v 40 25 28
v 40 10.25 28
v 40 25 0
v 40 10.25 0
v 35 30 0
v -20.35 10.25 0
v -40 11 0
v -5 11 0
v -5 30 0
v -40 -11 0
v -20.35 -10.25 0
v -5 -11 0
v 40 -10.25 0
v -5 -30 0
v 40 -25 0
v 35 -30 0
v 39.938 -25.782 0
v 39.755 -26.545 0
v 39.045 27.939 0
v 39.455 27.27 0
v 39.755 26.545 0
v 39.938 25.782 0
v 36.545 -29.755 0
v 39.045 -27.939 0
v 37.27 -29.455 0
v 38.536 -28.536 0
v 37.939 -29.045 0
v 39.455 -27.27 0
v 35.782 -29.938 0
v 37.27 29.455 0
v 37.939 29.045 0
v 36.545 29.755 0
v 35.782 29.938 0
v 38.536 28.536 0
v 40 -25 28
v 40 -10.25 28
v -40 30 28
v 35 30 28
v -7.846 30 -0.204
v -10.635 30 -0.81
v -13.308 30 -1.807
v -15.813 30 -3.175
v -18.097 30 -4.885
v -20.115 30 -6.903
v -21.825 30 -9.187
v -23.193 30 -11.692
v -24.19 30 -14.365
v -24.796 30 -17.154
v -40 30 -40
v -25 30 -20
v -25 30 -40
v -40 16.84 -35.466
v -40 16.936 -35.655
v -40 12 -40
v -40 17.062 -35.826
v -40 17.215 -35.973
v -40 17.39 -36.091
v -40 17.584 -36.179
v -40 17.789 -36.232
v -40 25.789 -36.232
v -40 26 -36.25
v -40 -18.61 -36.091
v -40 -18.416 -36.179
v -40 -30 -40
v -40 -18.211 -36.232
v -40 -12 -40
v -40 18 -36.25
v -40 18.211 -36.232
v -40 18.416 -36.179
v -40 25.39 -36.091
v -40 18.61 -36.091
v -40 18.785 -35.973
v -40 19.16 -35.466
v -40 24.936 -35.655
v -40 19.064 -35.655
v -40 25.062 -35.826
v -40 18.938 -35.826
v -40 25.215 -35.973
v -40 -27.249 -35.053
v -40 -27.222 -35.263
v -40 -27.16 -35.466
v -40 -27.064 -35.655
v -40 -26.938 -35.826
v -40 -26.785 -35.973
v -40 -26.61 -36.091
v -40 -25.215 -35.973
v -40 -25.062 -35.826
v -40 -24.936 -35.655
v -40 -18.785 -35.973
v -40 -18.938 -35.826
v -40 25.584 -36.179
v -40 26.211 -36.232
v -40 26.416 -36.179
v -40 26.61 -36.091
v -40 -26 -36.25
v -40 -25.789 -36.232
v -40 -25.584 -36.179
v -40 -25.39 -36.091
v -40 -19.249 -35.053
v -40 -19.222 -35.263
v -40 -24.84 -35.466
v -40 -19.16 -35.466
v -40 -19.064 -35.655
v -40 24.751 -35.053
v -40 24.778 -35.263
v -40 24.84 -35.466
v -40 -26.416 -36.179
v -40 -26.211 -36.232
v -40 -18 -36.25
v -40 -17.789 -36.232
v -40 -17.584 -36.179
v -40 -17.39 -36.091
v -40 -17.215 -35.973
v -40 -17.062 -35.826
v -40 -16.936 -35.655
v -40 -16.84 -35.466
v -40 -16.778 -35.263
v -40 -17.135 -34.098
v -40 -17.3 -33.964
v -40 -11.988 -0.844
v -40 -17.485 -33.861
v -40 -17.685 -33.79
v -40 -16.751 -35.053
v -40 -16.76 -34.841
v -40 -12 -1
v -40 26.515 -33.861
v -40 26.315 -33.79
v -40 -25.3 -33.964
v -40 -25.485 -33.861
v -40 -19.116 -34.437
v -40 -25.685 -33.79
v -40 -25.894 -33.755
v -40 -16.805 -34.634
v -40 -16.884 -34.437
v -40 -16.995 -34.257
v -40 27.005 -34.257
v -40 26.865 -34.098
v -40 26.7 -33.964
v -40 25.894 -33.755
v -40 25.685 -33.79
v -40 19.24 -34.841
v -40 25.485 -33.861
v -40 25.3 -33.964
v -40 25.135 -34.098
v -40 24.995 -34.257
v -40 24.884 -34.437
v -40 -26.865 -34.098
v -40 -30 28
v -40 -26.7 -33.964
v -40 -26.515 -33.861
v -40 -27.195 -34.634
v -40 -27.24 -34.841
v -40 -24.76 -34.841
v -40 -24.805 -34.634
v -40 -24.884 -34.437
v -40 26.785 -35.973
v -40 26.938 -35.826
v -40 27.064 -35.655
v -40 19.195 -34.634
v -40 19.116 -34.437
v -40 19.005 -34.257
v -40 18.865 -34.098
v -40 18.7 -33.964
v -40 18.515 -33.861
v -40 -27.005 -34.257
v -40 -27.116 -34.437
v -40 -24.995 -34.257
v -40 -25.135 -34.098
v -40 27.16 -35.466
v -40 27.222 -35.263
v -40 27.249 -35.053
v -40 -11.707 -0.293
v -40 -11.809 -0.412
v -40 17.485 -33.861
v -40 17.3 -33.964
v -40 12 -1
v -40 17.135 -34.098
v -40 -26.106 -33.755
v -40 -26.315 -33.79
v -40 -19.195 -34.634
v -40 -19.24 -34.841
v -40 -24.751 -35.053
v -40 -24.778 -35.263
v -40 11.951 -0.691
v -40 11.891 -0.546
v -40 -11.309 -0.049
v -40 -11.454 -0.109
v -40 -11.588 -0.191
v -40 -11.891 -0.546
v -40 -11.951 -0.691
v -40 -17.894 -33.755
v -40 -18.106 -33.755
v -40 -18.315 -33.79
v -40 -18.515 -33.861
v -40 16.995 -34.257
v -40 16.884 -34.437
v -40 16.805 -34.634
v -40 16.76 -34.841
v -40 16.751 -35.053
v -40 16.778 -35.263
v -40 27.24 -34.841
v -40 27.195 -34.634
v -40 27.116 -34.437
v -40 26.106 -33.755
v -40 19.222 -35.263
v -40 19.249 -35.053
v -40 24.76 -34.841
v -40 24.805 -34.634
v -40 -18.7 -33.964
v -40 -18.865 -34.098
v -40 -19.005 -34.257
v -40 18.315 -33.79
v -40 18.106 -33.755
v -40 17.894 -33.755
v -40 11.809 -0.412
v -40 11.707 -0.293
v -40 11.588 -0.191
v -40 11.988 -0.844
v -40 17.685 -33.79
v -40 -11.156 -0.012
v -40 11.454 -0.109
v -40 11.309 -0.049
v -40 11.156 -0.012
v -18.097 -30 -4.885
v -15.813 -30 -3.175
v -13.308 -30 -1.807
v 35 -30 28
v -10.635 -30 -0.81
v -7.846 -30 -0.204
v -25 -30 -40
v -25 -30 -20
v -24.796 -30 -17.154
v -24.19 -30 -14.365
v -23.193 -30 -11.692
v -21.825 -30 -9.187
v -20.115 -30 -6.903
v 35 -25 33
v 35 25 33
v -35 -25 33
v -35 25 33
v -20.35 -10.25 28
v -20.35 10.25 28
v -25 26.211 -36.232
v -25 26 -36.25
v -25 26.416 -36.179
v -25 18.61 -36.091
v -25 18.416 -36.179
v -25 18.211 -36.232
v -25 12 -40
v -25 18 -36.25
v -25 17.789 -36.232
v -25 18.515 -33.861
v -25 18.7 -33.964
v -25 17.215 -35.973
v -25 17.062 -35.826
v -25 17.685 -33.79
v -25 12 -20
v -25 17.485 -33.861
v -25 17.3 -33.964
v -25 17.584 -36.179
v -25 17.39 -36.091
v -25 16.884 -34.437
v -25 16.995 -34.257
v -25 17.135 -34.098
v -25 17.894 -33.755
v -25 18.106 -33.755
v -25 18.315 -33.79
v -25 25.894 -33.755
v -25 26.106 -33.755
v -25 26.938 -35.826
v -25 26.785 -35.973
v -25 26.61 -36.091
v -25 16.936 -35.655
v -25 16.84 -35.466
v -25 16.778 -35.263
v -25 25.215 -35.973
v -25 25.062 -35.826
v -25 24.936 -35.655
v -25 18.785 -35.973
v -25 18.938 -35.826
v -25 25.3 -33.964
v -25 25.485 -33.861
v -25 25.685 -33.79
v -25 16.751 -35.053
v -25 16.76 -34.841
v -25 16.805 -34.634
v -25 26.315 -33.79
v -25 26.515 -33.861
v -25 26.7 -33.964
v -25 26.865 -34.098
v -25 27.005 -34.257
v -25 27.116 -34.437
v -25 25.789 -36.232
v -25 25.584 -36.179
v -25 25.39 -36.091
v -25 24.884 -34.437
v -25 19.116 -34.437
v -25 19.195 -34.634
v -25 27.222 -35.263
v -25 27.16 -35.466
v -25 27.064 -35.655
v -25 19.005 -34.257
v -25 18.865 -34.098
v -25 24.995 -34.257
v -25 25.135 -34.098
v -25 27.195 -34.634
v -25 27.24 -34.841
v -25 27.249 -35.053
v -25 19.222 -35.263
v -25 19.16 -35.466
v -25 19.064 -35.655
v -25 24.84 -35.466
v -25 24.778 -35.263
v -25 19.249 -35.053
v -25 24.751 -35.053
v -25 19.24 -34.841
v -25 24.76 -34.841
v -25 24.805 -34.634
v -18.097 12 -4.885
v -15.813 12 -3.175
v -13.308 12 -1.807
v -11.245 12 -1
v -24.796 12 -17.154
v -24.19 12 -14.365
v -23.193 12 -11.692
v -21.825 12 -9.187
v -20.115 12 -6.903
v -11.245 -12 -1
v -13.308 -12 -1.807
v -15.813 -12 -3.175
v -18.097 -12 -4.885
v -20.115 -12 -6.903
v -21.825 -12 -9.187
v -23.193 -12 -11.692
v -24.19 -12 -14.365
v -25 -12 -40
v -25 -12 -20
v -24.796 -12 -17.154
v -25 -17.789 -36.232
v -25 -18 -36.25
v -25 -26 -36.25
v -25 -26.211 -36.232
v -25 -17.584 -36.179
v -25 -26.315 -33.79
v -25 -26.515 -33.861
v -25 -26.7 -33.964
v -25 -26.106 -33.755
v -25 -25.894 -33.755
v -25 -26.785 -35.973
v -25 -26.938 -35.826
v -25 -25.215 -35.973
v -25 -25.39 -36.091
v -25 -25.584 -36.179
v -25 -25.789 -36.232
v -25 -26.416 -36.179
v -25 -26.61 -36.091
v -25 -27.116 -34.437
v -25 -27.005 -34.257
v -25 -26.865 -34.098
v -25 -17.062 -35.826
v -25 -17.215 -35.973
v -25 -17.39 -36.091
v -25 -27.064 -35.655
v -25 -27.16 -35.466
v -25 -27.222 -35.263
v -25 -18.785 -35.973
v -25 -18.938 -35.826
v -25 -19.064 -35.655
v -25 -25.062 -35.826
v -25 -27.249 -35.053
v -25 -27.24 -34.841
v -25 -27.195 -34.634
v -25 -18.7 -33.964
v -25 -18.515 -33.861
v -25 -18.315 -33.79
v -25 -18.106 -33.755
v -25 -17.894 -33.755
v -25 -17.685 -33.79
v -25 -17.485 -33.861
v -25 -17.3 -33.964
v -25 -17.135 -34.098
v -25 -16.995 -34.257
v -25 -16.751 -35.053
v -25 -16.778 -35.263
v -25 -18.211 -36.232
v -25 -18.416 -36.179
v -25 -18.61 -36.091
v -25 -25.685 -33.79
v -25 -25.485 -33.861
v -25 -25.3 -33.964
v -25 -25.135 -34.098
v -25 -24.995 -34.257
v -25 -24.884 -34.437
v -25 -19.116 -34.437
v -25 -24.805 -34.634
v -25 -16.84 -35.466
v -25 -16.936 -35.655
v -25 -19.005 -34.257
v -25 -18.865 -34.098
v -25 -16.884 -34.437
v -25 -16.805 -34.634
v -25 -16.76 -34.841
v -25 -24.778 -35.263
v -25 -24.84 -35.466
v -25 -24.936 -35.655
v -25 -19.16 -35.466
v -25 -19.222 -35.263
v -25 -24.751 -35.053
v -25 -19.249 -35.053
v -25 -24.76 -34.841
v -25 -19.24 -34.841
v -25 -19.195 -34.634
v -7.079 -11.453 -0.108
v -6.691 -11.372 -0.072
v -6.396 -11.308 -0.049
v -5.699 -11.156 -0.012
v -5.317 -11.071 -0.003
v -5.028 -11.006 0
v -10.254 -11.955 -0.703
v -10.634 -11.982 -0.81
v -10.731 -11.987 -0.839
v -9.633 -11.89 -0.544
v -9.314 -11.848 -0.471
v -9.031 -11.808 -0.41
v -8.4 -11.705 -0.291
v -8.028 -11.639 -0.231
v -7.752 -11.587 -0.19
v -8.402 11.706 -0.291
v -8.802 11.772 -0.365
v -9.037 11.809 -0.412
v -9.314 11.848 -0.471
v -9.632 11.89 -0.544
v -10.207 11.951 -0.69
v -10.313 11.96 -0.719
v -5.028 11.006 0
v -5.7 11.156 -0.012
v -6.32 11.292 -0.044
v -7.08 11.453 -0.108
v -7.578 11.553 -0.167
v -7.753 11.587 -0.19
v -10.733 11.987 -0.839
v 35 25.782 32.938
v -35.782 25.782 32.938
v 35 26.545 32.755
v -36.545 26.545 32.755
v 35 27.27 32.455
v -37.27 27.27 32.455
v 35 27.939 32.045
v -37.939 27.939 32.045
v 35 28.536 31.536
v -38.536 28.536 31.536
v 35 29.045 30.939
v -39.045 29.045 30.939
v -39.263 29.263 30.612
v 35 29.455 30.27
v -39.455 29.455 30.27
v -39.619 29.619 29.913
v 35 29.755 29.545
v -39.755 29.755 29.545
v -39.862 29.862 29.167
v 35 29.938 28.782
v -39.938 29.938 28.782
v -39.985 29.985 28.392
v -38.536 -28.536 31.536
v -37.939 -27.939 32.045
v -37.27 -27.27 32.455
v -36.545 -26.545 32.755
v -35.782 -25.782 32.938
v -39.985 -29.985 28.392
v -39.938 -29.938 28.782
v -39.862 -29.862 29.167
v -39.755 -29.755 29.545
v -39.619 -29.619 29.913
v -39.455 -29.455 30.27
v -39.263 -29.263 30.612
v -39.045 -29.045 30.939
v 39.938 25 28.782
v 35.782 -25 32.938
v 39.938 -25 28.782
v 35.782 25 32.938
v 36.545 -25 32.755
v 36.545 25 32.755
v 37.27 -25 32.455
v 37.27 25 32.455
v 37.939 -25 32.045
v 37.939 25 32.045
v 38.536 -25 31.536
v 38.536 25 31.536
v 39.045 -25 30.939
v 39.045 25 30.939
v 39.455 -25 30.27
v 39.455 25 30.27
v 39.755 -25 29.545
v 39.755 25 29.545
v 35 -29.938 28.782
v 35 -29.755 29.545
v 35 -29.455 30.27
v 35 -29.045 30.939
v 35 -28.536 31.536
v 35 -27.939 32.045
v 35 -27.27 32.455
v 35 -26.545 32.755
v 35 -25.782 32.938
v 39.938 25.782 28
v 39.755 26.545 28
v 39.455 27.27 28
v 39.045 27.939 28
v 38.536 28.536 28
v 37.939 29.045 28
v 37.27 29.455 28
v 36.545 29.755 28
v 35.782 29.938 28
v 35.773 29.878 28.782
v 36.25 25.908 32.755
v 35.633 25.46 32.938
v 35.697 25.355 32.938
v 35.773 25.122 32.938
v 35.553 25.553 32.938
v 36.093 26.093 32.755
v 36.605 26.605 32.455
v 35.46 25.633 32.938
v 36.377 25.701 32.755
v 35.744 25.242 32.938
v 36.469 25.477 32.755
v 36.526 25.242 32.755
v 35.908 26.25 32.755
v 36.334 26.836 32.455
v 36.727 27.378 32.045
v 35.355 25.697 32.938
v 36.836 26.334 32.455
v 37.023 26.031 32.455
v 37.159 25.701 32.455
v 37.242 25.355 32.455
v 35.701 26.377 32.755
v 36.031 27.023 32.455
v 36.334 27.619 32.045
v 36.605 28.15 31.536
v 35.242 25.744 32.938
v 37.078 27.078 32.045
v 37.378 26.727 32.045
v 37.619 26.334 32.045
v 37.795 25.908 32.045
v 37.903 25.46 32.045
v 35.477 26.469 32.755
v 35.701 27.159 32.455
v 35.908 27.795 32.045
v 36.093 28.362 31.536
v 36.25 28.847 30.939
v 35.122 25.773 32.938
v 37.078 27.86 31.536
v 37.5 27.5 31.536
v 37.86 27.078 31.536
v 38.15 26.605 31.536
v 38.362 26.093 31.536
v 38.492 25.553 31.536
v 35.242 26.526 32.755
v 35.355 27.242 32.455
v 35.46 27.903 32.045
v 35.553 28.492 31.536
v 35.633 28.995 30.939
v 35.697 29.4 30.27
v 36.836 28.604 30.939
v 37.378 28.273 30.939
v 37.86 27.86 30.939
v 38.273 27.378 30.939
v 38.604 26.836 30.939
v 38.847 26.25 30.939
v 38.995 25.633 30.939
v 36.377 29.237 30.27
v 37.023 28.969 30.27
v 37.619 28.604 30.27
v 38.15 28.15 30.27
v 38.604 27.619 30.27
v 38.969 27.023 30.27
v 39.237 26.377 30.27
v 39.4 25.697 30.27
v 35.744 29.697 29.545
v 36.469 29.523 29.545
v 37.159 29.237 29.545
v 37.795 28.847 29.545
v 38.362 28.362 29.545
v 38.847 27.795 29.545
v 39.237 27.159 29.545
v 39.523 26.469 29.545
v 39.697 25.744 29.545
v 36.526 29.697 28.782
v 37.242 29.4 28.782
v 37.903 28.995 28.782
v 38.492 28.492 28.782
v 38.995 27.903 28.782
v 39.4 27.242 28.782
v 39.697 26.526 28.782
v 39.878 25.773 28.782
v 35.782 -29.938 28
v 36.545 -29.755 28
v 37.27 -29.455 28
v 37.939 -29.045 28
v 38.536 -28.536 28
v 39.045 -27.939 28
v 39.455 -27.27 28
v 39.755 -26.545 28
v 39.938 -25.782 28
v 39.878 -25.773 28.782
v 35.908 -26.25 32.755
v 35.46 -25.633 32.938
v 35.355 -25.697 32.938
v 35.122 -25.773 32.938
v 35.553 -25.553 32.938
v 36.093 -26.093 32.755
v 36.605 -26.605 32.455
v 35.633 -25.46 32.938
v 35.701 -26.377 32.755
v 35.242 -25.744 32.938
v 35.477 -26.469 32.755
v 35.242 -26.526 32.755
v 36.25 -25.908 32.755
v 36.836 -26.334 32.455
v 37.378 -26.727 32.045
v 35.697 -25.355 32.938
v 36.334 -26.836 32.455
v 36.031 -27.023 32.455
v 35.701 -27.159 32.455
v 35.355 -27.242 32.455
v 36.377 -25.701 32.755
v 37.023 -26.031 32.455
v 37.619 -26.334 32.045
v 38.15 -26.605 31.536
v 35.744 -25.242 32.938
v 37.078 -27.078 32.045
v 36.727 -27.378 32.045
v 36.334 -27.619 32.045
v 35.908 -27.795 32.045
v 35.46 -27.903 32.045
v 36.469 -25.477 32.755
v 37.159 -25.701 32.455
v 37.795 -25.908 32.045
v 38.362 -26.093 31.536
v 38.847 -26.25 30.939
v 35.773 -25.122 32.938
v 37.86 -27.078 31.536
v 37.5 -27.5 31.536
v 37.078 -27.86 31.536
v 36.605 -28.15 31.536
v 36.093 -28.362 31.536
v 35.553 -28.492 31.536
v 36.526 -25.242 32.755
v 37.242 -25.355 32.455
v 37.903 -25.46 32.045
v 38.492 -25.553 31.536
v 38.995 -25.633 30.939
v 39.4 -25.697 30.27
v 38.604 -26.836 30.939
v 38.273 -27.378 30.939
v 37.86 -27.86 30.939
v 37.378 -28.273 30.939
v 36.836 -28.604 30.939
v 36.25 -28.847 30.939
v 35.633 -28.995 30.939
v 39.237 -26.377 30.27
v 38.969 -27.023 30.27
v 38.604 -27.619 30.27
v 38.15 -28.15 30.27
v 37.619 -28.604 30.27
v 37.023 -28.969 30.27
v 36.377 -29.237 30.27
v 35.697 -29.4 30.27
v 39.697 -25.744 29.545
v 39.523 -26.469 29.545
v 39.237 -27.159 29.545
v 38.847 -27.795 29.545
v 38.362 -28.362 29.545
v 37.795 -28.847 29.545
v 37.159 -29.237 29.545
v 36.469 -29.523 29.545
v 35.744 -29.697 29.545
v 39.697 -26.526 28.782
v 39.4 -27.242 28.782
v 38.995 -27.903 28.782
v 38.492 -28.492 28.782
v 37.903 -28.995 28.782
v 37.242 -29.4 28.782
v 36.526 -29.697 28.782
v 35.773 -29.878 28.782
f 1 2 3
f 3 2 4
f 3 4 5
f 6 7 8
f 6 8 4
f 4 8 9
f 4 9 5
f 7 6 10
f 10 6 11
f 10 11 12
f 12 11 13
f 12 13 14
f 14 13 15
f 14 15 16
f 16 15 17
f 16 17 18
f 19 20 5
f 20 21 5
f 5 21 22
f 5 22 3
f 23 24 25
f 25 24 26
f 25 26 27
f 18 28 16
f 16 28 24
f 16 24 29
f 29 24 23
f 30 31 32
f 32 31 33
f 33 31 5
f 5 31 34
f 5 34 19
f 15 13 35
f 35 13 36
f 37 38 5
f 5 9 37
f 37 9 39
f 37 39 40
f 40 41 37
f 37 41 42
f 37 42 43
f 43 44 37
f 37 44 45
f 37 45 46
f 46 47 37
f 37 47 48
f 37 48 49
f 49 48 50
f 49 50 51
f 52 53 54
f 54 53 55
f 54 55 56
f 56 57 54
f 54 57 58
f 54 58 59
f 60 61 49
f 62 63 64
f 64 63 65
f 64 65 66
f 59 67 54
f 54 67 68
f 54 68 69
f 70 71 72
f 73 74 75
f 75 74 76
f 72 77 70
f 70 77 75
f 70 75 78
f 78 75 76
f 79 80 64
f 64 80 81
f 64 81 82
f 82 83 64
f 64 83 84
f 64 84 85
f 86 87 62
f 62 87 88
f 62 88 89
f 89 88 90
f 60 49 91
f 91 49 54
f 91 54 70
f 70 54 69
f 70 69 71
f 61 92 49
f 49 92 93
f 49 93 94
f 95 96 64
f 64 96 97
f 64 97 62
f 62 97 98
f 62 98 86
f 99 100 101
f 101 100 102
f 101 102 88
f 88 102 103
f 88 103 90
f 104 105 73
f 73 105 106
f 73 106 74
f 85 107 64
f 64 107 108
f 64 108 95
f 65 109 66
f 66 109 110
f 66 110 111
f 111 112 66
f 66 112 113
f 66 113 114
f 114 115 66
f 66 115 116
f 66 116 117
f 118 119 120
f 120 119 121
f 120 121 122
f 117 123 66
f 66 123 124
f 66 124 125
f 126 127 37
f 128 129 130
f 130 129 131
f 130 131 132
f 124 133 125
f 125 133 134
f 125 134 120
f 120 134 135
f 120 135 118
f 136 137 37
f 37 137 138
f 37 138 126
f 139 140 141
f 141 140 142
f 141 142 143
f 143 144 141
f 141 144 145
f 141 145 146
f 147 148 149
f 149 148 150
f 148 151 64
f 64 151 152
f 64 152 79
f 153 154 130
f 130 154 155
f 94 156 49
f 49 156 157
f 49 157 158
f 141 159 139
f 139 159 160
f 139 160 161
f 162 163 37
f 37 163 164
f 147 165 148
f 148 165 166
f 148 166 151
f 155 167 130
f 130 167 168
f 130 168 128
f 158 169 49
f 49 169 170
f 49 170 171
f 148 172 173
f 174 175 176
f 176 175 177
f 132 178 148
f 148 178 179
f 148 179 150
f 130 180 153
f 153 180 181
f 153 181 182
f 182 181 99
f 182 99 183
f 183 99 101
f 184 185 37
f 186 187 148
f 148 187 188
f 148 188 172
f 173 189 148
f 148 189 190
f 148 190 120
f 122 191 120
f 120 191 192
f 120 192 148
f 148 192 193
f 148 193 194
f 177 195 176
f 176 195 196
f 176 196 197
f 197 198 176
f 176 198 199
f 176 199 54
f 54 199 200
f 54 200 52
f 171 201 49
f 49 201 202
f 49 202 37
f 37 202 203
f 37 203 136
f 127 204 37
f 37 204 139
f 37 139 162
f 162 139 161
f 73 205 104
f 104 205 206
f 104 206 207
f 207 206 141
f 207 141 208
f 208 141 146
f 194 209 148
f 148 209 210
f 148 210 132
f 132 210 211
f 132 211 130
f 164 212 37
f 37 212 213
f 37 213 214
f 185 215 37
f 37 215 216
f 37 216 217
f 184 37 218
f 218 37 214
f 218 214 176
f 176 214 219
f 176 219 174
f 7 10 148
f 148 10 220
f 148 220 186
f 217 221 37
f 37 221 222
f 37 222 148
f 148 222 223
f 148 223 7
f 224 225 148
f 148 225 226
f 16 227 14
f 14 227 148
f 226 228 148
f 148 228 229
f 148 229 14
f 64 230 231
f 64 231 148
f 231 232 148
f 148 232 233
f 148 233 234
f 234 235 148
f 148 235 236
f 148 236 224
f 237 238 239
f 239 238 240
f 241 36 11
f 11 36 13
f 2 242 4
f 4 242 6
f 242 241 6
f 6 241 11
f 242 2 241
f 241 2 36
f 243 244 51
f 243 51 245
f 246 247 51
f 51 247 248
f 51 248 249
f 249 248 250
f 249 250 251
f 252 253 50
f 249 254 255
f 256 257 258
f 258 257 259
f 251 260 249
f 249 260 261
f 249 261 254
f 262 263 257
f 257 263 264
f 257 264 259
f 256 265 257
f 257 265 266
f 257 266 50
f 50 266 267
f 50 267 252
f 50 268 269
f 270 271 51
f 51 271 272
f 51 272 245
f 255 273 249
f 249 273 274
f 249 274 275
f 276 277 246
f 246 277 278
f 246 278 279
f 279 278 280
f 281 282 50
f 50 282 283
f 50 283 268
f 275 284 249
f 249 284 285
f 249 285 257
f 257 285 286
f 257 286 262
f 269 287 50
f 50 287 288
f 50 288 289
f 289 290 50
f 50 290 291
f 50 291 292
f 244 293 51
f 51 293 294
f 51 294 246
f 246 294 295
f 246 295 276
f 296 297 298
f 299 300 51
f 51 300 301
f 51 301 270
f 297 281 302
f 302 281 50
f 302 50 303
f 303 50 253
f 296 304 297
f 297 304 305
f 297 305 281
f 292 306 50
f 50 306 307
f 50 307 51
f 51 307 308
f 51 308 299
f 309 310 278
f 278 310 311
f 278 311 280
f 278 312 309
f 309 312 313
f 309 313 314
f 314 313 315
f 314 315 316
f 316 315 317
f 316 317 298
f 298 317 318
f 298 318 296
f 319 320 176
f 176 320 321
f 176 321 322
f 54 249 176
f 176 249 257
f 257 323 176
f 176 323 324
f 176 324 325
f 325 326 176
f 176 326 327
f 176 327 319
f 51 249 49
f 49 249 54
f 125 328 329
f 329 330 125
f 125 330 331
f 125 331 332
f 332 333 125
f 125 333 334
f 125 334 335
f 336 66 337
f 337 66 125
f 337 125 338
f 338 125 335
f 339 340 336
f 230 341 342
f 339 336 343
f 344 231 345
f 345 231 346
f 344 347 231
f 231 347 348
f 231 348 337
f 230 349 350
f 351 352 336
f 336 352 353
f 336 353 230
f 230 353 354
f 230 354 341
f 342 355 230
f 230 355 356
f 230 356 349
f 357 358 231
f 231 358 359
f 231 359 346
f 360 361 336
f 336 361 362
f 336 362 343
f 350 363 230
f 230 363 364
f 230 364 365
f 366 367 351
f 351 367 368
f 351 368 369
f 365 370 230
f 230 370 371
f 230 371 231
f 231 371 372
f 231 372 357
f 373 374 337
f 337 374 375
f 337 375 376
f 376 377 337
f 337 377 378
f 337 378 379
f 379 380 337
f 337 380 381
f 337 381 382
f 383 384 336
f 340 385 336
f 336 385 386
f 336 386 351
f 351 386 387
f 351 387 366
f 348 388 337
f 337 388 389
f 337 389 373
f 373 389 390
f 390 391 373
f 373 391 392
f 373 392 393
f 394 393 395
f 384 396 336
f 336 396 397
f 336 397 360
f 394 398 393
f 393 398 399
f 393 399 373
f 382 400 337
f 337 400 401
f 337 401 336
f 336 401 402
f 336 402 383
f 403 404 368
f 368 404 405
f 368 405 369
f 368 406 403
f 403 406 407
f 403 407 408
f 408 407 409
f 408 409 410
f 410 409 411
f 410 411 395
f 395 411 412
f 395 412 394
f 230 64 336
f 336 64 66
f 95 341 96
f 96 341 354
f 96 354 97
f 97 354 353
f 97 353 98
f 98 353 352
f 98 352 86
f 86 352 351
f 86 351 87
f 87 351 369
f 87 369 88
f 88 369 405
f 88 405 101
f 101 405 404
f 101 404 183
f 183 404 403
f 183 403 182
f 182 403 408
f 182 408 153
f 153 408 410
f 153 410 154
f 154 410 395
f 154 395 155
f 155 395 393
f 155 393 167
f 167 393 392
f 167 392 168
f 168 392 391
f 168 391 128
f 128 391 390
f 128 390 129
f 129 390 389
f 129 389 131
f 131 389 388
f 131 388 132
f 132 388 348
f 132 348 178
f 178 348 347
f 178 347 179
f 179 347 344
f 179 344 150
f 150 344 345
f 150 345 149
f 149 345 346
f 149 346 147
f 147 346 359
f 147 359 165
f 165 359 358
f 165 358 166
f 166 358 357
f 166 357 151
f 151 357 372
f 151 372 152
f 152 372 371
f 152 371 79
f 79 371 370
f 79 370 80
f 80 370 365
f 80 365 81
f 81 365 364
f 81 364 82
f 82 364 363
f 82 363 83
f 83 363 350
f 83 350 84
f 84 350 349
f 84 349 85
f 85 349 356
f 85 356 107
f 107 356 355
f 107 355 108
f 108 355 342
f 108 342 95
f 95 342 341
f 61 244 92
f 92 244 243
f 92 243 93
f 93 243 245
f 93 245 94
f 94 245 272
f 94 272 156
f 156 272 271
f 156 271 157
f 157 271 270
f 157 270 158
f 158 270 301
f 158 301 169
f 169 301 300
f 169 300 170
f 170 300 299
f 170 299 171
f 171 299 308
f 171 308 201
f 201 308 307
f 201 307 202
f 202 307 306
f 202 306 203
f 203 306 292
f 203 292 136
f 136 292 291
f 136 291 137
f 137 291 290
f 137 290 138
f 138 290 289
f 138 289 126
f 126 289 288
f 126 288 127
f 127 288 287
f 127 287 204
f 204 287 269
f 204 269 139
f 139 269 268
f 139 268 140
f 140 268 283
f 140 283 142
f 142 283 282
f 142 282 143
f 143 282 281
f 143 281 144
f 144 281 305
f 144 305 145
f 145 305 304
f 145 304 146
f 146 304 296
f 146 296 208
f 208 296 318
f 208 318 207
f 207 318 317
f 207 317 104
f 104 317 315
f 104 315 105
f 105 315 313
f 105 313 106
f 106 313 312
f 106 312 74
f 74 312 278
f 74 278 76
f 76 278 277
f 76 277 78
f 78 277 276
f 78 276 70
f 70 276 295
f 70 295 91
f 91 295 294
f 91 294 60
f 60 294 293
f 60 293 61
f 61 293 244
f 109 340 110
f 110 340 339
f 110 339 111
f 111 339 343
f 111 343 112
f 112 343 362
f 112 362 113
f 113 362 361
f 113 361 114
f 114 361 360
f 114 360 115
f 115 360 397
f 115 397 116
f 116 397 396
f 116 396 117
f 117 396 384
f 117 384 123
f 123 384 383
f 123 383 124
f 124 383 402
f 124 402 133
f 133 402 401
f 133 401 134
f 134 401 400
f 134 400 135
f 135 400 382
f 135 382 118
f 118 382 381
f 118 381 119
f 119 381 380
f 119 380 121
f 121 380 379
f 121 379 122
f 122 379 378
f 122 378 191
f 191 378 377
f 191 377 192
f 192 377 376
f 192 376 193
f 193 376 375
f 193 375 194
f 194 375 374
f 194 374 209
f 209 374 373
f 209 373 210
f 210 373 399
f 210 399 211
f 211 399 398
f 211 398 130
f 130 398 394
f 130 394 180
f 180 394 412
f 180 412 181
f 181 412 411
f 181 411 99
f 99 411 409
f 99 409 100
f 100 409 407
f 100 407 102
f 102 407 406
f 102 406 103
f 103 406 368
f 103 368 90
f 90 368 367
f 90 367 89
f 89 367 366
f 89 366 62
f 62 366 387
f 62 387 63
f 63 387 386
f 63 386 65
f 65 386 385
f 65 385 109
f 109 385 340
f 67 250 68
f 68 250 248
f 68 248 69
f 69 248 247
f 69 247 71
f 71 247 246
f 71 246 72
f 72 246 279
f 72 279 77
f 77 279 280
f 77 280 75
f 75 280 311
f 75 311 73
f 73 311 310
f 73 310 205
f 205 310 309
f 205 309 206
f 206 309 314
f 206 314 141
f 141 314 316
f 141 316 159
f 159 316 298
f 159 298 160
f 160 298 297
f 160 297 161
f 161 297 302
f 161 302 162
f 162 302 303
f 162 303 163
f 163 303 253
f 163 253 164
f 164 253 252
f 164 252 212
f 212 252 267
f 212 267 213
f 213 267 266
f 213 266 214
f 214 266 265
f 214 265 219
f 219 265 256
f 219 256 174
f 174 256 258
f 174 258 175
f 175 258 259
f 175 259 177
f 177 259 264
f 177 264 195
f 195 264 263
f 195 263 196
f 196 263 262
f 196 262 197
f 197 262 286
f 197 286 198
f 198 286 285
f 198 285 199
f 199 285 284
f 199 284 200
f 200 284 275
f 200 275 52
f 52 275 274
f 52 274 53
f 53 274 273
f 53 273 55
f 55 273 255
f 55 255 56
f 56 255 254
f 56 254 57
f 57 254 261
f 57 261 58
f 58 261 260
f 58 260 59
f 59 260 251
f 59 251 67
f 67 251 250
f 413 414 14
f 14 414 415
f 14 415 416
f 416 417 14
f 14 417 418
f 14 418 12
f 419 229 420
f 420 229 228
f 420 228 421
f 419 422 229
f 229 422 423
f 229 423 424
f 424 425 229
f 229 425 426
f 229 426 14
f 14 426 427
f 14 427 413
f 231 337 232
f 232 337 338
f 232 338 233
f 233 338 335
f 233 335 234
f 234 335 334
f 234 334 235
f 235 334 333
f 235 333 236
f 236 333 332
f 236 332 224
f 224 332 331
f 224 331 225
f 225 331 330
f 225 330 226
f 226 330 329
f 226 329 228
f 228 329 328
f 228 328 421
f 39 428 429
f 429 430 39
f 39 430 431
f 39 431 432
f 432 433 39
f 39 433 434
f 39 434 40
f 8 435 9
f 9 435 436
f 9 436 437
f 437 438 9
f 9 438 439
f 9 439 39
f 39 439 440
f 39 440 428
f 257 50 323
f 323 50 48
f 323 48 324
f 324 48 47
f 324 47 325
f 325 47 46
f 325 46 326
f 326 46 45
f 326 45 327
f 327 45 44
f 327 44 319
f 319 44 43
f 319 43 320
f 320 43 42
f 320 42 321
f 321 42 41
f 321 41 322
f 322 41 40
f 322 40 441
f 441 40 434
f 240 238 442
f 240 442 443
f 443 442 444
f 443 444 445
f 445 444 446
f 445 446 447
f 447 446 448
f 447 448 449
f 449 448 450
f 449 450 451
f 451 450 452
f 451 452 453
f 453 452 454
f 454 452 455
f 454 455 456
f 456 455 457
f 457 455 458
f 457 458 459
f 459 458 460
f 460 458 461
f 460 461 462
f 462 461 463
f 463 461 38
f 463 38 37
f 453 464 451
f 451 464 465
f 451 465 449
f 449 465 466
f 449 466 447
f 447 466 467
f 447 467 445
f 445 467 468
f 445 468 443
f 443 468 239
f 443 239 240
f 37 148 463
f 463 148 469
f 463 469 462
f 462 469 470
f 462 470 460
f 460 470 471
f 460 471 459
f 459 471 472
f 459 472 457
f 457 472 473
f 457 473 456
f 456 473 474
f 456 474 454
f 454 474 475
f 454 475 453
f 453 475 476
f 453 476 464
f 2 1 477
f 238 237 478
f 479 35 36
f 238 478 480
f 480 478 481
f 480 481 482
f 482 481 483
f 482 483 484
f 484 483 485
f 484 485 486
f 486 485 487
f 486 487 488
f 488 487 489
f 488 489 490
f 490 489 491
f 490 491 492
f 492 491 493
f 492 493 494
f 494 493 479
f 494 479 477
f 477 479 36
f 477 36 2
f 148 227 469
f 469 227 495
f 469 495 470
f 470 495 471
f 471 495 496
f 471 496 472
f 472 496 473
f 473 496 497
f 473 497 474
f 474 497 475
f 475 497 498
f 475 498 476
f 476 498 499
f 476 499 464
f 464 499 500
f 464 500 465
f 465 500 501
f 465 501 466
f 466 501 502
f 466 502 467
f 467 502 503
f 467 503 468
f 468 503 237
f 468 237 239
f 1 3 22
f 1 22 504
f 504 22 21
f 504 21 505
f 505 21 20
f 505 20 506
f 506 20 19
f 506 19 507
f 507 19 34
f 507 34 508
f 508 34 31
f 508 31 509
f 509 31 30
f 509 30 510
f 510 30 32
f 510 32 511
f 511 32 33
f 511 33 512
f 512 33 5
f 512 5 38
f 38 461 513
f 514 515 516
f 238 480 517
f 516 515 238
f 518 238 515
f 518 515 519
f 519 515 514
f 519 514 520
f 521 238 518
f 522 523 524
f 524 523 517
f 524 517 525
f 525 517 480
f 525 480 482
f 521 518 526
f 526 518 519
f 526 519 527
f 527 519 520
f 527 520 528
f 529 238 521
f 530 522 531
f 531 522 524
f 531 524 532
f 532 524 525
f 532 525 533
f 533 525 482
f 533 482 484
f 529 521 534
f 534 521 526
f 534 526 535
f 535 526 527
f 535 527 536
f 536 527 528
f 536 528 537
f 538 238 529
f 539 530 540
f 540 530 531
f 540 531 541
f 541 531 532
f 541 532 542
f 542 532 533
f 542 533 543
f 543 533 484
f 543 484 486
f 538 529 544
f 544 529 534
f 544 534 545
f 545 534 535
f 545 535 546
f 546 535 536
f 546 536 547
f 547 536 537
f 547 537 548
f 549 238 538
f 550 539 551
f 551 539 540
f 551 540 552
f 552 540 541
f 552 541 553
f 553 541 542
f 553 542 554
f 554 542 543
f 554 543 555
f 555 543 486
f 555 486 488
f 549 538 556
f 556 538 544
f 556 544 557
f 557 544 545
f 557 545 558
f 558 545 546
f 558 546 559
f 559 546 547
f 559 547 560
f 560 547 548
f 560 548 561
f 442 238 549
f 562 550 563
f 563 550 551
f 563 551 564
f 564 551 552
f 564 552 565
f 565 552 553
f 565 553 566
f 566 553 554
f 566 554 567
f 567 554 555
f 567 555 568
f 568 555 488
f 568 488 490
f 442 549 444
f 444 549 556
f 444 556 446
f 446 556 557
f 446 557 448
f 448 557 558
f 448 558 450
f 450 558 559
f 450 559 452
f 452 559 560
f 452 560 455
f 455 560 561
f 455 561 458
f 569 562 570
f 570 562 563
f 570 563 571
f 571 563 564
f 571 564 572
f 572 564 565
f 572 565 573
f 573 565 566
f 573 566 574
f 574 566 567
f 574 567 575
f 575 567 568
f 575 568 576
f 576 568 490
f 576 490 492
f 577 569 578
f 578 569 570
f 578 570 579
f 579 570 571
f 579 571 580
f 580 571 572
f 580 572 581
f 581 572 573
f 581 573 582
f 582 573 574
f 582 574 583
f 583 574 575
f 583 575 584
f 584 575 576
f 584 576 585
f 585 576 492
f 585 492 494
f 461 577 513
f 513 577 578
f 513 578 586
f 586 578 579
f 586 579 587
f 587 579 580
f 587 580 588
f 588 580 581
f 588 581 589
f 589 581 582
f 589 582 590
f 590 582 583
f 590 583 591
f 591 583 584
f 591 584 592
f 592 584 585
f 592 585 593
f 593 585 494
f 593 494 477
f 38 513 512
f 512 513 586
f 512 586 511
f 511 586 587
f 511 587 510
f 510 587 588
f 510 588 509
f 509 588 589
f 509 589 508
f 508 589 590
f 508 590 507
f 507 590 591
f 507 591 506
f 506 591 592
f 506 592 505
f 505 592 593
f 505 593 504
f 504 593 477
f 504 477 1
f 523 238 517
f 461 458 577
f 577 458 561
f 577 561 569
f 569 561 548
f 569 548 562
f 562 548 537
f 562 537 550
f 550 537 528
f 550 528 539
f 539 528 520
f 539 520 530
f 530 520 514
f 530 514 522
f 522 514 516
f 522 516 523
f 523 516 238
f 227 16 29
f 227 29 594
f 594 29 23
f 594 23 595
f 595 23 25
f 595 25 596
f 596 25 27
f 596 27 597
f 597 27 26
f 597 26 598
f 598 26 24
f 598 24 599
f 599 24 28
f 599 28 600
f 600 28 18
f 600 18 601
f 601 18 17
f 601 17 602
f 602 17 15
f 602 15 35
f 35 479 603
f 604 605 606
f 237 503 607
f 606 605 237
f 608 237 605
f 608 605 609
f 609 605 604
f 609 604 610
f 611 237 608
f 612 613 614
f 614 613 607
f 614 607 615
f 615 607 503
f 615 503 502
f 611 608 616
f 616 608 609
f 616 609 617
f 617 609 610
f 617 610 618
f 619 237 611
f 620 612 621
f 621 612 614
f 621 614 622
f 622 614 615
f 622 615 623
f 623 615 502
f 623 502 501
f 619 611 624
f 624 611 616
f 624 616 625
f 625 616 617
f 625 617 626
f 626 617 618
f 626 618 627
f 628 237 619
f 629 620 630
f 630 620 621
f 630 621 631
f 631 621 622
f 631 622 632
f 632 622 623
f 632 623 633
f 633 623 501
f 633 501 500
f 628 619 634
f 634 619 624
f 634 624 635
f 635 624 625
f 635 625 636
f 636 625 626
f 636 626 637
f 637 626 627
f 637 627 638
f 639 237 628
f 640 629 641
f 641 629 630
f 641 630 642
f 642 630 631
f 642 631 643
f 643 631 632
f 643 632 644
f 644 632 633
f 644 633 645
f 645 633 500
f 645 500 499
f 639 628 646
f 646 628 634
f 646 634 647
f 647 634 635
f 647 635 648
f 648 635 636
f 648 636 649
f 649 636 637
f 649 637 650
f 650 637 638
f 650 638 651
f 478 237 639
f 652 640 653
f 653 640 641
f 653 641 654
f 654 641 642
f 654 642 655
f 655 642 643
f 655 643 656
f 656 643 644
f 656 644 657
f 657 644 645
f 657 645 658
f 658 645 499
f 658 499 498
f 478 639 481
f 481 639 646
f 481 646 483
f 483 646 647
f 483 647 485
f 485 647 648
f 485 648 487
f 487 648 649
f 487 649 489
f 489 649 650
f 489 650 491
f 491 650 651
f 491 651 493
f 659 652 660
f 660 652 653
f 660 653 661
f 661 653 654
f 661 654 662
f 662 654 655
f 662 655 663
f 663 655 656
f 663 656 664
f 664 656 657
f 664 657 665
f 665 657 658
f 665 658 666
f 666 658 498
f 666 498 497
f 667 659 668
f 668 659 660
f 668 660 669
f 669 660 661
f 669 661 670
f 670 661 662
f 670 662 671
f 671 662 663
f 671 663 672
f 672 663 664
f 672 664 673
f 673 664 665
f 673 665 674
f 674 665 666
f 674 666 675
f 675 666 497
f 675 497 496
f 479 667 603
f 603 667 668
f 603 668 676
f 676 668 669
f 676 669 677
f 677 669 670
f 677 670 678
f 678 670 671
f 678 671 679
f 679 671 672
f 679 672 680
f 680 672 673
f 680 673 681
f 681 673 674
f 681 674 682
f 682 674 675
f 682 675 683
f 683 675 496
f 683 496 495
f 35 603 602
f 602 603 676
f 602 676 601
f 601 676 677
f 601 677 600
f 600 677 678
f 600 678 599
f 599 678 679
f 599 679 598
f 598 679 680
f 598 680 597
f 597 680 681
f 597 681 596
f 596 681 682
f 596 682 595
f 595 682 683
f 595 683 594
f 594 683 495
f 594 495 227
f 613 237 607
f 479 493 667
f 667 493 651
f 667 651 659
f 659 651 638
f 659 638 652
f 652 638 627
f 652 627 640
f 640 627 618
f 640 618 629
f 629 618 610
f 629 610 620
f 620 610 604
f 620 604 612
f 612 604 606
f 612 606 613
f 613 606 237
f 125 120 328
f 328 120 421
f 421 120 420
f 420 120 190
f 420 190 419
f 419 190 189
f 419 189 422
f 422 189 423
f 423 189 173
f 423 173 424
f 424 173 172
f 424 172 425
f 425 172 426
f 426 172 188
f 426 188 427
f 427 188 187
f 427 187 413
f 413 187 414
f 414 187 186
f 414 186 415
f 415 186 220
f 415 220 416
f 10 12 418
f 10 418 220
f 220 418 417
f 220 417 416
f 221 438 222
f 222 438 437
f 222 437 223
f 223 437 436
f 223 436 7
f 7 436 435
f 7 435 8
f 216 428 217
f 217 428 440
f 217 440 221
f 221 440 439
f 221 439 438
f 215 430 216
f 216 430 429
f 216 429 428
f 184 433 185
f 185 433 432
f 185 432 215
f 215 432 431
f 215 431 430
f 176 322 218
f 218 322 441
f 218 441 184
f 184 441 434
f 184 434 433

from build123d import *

# Parameters (mm, degrees)
SKETCH_2_W          = 80
SKETCH_2_H          = 60
EXTRUDE_2_DEPTH     = 33
SKETCH_3_W          = 40.7
SKETCH_3_H          = 20.5
CUT_EXTRUDE_1_DEPTH = 28
SKETCH_4_W          = 19.65
SKETCH_4_H          = 20.5
EXTRUDE_3_DEPTH     = 28
SKETCH_5_W          = 19.65
SKETCH_5_H          = 20.5
CUT_EXTRUDE_4_DEPTH = 28
SKETCH_10_W         = 15
SKETCH_10_H         = 18
EXTRUDE_6_DEPTH     = 40
M3X0_5_1_D          = 2.5
FILLET_2_R          = 20
FILLET_START        = -41
FILLET_7_DEPTH      = 81
FILLET_START_2      = -31
FILLET_7_2_DEPTH    = 62
FILLET_8_R          = 5
FILLET_10_R         = 1


with BuildPart() as part:
    # ｽｹｯﾁ2 → ﾎﾞｽ - 押し出し2 (new body)
    with BuildSketch(Plane.XY):
        Rectangle(SKETCH_2_W, SKETCH_2_H)
    extrude(amount=EXTRUDE_2_DEPTH)

    # ｽｹｯﾁ3 → ｶｯﾄ - 押し出し1 (cut)
    with BuildSketch(Plane.XY):
        Rectangle(SKETCH_3_W, SKETCH_3_H)
    extrude(amount=CUT_EXTRUDE_1_DEPTH, mode=Mode.SUBTRACT)

    # ｽｹｯﾁ4 → ﾎﾞｽ - 押し出し3 (add)
    with BuildSketch(Plane.XY):
        with Locations((30.175, 0)):
            Rectangle(SKETCH_4_W, SKETCH_4_H)
    extrude(amount=EXTRUDE_3_DEPTH)

    # ｽｹｯﾁ5 → ｶｯﾄ - 押し出し4 (cut)
    with BuildSketch(Plane.XY):
        with Locations((30.175, 0)):
            Rectangle(SKETCH_5_W, SKETCH_5_H)
    extrude(amount=CUT_EXTRUDE_4_DEPTH, mode=Mode.SUBTRACT)

    # ｽｹｯﾁ10 → ﾎﾞｽ - 押し出し6 (add)
    with BuildSketch(Plane.XY):
        with Locations((-32.5, 21)):
            Rectangle(SKETCH_10_W, SKETCH_10_H)
        with Locations((-32.5, -21)):
            Rectangle(SKETCH_10_W, SKETCH_10_H)
    extrude(amount=-EXTRUDE_6_DEPTH)

    # M3x0.5 ねじ穴1 (through all)
    with Locations(Plane(origin=(-25, 0, 0), x_dir=(0, 0, -1), z_dir=(1, 0, 0))):
        with Locations((35, 18), (35, -18), (35, 26), (35, -26)):
            Hole(M3X0_5_1_D / 2)

    # ﾌｨﾚｯﾄ2
    fillet_2_edges = [part.edges().sort_by_distance(p)[0] for p in [
        (-25, 21, 0),
        (-25, -21, 0),
    ]]
    fillet(fillet_2_edges, radius=FILLET_2_R)

    # ﾌｨﾚｯﾄ7: read off the stored shape, not the designer's step
    # ﾌｨﾚｯﾄ7 outline → ﾌｨﾚｯﾄ7 (cut)
    with BuildSketch(Plane.YZ.offset(FILLET_START)):
        with BuildLine():
            ThreePointArc((-30, 28), (-28.535533906, 31.535533906), (-25, 33))
            Line((-25, 33), (-30, 33))
            Line((-30, 33), (-30, 28))
        make_face()
        with BuildLine():
            ThreePointArc((25, 33), (28.535533906, 31.535533906), (30, 28))
            Line((30, 28), (30, 33))
            Line((30, 33), (25, 33))
        make_face()
    extrude(amount=FILLET_7_DEPTH, mode=Mode.SUBTRACT)

    # Fillet 7 2 outline → Fillet 7 2 (cut)
    with BuildSketch(Plane(origin=(0, 0, 0), x_dir=(1, 0, 0), z_dir=(0, 1, 0)).offset(FILLET_START_2)):
        with BuildLine():
            ThreePointArc((40, -28), (38.535533906, -31.535533906), (35, -33))
            Line((35, -33), (40, -33))
            Line((40, -33), (40, -28))
        make_face()
        with BuildLine():
            ThreePointArc((-35, -33), (-38.535533906, -31.535533906), (-40, -28))
            Line((-40, -28), (-40, -33))
            Line((-40, -33), (-35, -33))
        make_face()
    extrude(amount=FILLET_7_2_DEPTH, mode=Mode.SUBTRACT)

    # ﾌｨﾚｯﾄ8
    # the kernel refuses this fillet: 5 mm, written as the material it takes off along each edge
    with BuildSketch(Plane(origin=(35, 25, 28), x_dir=(1, 0, 0), z_dir=(0, 1, 0))) as fillet_8_piece_1_section:
        Polygon((0, 0), (FILLET_8_R, 0), (FILLET_8_R, -FILLET_8_R), (0, -FILLET_8_R), align=None)
    fillet_8_piece_1 = extrude(amount=FILLET_8_R, mode=Mode.PRIVATE)
    fillet_8_piece_1 = fillet_8_piece_1 - Plane(origin=(35, 25, 28), x_dir=(-0.7071067811865475, 0, -0.7071067811865475), z_dir=(0, 1, 0)) * Sphere(FILLET_8_R, mode=Mode.PRIVATE)
    add(fillet_8_piece_1, mode=Mode.SUBTRACT)
    with BuildSketch(Plane(origin=(35, -25, 28), x_dir=(0, -1, 0), z_dir=(1, 0, 0))) as fillet_8_piece_2_section:
        Polygon((0, 0), (FILLET_8_R, 0), (FILLET_8_R, -FILLET_8_R), (0, -FILLET_8_R), align=None)
    fillet_8_piece_2 = extrude(amount=FILLET_8_R, mode=Mode.PRIVATE)
    fillet_8_piece_2 = fillet_8_piece_2 - Plane(origin=(35, -25, 28), x_dir=(0, 0.7071067811865475, -0.7071067811865475), z_dir=(1, 0, 0)) * Sphere(FILLET_8_R, mode=Mode.PRIVATE)
    add(fillet_8_piece_2, mode=Mode.SUBTRACT)
    with BuildSketch(Plane(origin=(40, -30, -12.5), x_dir=(0, 1, 0), z_dir=(0, 0, 1)), Plane(origin=(40, 30, -12.5), x_dir=(-1, 0, 0), z_dir=(0, 0, 1))) as fillet_8_piece_3:
        with BuildLine():
            CenterArc((FILLET_8_R, FILLET_8_R), FILLET_8_R, 180, 90)
            Line((0, FILLET_8_R), (0, 0))
            Line((0, 0), (FILLET_8_R, 0))
        make_face()
    extrude(amount=40.5, mode=Mode.SUBTRACT)

    # ﾌｨﾚｯﾄ10
    fillet_10_edges = [part.edges().sort_by_distance(p)[0] for p in [
        (-22.5, 12, 0),
        (-22.5, -12, 0),
    ]]
    fillet(fillet_10_edges, radius=FILLET_10_R)


solid = part.part
